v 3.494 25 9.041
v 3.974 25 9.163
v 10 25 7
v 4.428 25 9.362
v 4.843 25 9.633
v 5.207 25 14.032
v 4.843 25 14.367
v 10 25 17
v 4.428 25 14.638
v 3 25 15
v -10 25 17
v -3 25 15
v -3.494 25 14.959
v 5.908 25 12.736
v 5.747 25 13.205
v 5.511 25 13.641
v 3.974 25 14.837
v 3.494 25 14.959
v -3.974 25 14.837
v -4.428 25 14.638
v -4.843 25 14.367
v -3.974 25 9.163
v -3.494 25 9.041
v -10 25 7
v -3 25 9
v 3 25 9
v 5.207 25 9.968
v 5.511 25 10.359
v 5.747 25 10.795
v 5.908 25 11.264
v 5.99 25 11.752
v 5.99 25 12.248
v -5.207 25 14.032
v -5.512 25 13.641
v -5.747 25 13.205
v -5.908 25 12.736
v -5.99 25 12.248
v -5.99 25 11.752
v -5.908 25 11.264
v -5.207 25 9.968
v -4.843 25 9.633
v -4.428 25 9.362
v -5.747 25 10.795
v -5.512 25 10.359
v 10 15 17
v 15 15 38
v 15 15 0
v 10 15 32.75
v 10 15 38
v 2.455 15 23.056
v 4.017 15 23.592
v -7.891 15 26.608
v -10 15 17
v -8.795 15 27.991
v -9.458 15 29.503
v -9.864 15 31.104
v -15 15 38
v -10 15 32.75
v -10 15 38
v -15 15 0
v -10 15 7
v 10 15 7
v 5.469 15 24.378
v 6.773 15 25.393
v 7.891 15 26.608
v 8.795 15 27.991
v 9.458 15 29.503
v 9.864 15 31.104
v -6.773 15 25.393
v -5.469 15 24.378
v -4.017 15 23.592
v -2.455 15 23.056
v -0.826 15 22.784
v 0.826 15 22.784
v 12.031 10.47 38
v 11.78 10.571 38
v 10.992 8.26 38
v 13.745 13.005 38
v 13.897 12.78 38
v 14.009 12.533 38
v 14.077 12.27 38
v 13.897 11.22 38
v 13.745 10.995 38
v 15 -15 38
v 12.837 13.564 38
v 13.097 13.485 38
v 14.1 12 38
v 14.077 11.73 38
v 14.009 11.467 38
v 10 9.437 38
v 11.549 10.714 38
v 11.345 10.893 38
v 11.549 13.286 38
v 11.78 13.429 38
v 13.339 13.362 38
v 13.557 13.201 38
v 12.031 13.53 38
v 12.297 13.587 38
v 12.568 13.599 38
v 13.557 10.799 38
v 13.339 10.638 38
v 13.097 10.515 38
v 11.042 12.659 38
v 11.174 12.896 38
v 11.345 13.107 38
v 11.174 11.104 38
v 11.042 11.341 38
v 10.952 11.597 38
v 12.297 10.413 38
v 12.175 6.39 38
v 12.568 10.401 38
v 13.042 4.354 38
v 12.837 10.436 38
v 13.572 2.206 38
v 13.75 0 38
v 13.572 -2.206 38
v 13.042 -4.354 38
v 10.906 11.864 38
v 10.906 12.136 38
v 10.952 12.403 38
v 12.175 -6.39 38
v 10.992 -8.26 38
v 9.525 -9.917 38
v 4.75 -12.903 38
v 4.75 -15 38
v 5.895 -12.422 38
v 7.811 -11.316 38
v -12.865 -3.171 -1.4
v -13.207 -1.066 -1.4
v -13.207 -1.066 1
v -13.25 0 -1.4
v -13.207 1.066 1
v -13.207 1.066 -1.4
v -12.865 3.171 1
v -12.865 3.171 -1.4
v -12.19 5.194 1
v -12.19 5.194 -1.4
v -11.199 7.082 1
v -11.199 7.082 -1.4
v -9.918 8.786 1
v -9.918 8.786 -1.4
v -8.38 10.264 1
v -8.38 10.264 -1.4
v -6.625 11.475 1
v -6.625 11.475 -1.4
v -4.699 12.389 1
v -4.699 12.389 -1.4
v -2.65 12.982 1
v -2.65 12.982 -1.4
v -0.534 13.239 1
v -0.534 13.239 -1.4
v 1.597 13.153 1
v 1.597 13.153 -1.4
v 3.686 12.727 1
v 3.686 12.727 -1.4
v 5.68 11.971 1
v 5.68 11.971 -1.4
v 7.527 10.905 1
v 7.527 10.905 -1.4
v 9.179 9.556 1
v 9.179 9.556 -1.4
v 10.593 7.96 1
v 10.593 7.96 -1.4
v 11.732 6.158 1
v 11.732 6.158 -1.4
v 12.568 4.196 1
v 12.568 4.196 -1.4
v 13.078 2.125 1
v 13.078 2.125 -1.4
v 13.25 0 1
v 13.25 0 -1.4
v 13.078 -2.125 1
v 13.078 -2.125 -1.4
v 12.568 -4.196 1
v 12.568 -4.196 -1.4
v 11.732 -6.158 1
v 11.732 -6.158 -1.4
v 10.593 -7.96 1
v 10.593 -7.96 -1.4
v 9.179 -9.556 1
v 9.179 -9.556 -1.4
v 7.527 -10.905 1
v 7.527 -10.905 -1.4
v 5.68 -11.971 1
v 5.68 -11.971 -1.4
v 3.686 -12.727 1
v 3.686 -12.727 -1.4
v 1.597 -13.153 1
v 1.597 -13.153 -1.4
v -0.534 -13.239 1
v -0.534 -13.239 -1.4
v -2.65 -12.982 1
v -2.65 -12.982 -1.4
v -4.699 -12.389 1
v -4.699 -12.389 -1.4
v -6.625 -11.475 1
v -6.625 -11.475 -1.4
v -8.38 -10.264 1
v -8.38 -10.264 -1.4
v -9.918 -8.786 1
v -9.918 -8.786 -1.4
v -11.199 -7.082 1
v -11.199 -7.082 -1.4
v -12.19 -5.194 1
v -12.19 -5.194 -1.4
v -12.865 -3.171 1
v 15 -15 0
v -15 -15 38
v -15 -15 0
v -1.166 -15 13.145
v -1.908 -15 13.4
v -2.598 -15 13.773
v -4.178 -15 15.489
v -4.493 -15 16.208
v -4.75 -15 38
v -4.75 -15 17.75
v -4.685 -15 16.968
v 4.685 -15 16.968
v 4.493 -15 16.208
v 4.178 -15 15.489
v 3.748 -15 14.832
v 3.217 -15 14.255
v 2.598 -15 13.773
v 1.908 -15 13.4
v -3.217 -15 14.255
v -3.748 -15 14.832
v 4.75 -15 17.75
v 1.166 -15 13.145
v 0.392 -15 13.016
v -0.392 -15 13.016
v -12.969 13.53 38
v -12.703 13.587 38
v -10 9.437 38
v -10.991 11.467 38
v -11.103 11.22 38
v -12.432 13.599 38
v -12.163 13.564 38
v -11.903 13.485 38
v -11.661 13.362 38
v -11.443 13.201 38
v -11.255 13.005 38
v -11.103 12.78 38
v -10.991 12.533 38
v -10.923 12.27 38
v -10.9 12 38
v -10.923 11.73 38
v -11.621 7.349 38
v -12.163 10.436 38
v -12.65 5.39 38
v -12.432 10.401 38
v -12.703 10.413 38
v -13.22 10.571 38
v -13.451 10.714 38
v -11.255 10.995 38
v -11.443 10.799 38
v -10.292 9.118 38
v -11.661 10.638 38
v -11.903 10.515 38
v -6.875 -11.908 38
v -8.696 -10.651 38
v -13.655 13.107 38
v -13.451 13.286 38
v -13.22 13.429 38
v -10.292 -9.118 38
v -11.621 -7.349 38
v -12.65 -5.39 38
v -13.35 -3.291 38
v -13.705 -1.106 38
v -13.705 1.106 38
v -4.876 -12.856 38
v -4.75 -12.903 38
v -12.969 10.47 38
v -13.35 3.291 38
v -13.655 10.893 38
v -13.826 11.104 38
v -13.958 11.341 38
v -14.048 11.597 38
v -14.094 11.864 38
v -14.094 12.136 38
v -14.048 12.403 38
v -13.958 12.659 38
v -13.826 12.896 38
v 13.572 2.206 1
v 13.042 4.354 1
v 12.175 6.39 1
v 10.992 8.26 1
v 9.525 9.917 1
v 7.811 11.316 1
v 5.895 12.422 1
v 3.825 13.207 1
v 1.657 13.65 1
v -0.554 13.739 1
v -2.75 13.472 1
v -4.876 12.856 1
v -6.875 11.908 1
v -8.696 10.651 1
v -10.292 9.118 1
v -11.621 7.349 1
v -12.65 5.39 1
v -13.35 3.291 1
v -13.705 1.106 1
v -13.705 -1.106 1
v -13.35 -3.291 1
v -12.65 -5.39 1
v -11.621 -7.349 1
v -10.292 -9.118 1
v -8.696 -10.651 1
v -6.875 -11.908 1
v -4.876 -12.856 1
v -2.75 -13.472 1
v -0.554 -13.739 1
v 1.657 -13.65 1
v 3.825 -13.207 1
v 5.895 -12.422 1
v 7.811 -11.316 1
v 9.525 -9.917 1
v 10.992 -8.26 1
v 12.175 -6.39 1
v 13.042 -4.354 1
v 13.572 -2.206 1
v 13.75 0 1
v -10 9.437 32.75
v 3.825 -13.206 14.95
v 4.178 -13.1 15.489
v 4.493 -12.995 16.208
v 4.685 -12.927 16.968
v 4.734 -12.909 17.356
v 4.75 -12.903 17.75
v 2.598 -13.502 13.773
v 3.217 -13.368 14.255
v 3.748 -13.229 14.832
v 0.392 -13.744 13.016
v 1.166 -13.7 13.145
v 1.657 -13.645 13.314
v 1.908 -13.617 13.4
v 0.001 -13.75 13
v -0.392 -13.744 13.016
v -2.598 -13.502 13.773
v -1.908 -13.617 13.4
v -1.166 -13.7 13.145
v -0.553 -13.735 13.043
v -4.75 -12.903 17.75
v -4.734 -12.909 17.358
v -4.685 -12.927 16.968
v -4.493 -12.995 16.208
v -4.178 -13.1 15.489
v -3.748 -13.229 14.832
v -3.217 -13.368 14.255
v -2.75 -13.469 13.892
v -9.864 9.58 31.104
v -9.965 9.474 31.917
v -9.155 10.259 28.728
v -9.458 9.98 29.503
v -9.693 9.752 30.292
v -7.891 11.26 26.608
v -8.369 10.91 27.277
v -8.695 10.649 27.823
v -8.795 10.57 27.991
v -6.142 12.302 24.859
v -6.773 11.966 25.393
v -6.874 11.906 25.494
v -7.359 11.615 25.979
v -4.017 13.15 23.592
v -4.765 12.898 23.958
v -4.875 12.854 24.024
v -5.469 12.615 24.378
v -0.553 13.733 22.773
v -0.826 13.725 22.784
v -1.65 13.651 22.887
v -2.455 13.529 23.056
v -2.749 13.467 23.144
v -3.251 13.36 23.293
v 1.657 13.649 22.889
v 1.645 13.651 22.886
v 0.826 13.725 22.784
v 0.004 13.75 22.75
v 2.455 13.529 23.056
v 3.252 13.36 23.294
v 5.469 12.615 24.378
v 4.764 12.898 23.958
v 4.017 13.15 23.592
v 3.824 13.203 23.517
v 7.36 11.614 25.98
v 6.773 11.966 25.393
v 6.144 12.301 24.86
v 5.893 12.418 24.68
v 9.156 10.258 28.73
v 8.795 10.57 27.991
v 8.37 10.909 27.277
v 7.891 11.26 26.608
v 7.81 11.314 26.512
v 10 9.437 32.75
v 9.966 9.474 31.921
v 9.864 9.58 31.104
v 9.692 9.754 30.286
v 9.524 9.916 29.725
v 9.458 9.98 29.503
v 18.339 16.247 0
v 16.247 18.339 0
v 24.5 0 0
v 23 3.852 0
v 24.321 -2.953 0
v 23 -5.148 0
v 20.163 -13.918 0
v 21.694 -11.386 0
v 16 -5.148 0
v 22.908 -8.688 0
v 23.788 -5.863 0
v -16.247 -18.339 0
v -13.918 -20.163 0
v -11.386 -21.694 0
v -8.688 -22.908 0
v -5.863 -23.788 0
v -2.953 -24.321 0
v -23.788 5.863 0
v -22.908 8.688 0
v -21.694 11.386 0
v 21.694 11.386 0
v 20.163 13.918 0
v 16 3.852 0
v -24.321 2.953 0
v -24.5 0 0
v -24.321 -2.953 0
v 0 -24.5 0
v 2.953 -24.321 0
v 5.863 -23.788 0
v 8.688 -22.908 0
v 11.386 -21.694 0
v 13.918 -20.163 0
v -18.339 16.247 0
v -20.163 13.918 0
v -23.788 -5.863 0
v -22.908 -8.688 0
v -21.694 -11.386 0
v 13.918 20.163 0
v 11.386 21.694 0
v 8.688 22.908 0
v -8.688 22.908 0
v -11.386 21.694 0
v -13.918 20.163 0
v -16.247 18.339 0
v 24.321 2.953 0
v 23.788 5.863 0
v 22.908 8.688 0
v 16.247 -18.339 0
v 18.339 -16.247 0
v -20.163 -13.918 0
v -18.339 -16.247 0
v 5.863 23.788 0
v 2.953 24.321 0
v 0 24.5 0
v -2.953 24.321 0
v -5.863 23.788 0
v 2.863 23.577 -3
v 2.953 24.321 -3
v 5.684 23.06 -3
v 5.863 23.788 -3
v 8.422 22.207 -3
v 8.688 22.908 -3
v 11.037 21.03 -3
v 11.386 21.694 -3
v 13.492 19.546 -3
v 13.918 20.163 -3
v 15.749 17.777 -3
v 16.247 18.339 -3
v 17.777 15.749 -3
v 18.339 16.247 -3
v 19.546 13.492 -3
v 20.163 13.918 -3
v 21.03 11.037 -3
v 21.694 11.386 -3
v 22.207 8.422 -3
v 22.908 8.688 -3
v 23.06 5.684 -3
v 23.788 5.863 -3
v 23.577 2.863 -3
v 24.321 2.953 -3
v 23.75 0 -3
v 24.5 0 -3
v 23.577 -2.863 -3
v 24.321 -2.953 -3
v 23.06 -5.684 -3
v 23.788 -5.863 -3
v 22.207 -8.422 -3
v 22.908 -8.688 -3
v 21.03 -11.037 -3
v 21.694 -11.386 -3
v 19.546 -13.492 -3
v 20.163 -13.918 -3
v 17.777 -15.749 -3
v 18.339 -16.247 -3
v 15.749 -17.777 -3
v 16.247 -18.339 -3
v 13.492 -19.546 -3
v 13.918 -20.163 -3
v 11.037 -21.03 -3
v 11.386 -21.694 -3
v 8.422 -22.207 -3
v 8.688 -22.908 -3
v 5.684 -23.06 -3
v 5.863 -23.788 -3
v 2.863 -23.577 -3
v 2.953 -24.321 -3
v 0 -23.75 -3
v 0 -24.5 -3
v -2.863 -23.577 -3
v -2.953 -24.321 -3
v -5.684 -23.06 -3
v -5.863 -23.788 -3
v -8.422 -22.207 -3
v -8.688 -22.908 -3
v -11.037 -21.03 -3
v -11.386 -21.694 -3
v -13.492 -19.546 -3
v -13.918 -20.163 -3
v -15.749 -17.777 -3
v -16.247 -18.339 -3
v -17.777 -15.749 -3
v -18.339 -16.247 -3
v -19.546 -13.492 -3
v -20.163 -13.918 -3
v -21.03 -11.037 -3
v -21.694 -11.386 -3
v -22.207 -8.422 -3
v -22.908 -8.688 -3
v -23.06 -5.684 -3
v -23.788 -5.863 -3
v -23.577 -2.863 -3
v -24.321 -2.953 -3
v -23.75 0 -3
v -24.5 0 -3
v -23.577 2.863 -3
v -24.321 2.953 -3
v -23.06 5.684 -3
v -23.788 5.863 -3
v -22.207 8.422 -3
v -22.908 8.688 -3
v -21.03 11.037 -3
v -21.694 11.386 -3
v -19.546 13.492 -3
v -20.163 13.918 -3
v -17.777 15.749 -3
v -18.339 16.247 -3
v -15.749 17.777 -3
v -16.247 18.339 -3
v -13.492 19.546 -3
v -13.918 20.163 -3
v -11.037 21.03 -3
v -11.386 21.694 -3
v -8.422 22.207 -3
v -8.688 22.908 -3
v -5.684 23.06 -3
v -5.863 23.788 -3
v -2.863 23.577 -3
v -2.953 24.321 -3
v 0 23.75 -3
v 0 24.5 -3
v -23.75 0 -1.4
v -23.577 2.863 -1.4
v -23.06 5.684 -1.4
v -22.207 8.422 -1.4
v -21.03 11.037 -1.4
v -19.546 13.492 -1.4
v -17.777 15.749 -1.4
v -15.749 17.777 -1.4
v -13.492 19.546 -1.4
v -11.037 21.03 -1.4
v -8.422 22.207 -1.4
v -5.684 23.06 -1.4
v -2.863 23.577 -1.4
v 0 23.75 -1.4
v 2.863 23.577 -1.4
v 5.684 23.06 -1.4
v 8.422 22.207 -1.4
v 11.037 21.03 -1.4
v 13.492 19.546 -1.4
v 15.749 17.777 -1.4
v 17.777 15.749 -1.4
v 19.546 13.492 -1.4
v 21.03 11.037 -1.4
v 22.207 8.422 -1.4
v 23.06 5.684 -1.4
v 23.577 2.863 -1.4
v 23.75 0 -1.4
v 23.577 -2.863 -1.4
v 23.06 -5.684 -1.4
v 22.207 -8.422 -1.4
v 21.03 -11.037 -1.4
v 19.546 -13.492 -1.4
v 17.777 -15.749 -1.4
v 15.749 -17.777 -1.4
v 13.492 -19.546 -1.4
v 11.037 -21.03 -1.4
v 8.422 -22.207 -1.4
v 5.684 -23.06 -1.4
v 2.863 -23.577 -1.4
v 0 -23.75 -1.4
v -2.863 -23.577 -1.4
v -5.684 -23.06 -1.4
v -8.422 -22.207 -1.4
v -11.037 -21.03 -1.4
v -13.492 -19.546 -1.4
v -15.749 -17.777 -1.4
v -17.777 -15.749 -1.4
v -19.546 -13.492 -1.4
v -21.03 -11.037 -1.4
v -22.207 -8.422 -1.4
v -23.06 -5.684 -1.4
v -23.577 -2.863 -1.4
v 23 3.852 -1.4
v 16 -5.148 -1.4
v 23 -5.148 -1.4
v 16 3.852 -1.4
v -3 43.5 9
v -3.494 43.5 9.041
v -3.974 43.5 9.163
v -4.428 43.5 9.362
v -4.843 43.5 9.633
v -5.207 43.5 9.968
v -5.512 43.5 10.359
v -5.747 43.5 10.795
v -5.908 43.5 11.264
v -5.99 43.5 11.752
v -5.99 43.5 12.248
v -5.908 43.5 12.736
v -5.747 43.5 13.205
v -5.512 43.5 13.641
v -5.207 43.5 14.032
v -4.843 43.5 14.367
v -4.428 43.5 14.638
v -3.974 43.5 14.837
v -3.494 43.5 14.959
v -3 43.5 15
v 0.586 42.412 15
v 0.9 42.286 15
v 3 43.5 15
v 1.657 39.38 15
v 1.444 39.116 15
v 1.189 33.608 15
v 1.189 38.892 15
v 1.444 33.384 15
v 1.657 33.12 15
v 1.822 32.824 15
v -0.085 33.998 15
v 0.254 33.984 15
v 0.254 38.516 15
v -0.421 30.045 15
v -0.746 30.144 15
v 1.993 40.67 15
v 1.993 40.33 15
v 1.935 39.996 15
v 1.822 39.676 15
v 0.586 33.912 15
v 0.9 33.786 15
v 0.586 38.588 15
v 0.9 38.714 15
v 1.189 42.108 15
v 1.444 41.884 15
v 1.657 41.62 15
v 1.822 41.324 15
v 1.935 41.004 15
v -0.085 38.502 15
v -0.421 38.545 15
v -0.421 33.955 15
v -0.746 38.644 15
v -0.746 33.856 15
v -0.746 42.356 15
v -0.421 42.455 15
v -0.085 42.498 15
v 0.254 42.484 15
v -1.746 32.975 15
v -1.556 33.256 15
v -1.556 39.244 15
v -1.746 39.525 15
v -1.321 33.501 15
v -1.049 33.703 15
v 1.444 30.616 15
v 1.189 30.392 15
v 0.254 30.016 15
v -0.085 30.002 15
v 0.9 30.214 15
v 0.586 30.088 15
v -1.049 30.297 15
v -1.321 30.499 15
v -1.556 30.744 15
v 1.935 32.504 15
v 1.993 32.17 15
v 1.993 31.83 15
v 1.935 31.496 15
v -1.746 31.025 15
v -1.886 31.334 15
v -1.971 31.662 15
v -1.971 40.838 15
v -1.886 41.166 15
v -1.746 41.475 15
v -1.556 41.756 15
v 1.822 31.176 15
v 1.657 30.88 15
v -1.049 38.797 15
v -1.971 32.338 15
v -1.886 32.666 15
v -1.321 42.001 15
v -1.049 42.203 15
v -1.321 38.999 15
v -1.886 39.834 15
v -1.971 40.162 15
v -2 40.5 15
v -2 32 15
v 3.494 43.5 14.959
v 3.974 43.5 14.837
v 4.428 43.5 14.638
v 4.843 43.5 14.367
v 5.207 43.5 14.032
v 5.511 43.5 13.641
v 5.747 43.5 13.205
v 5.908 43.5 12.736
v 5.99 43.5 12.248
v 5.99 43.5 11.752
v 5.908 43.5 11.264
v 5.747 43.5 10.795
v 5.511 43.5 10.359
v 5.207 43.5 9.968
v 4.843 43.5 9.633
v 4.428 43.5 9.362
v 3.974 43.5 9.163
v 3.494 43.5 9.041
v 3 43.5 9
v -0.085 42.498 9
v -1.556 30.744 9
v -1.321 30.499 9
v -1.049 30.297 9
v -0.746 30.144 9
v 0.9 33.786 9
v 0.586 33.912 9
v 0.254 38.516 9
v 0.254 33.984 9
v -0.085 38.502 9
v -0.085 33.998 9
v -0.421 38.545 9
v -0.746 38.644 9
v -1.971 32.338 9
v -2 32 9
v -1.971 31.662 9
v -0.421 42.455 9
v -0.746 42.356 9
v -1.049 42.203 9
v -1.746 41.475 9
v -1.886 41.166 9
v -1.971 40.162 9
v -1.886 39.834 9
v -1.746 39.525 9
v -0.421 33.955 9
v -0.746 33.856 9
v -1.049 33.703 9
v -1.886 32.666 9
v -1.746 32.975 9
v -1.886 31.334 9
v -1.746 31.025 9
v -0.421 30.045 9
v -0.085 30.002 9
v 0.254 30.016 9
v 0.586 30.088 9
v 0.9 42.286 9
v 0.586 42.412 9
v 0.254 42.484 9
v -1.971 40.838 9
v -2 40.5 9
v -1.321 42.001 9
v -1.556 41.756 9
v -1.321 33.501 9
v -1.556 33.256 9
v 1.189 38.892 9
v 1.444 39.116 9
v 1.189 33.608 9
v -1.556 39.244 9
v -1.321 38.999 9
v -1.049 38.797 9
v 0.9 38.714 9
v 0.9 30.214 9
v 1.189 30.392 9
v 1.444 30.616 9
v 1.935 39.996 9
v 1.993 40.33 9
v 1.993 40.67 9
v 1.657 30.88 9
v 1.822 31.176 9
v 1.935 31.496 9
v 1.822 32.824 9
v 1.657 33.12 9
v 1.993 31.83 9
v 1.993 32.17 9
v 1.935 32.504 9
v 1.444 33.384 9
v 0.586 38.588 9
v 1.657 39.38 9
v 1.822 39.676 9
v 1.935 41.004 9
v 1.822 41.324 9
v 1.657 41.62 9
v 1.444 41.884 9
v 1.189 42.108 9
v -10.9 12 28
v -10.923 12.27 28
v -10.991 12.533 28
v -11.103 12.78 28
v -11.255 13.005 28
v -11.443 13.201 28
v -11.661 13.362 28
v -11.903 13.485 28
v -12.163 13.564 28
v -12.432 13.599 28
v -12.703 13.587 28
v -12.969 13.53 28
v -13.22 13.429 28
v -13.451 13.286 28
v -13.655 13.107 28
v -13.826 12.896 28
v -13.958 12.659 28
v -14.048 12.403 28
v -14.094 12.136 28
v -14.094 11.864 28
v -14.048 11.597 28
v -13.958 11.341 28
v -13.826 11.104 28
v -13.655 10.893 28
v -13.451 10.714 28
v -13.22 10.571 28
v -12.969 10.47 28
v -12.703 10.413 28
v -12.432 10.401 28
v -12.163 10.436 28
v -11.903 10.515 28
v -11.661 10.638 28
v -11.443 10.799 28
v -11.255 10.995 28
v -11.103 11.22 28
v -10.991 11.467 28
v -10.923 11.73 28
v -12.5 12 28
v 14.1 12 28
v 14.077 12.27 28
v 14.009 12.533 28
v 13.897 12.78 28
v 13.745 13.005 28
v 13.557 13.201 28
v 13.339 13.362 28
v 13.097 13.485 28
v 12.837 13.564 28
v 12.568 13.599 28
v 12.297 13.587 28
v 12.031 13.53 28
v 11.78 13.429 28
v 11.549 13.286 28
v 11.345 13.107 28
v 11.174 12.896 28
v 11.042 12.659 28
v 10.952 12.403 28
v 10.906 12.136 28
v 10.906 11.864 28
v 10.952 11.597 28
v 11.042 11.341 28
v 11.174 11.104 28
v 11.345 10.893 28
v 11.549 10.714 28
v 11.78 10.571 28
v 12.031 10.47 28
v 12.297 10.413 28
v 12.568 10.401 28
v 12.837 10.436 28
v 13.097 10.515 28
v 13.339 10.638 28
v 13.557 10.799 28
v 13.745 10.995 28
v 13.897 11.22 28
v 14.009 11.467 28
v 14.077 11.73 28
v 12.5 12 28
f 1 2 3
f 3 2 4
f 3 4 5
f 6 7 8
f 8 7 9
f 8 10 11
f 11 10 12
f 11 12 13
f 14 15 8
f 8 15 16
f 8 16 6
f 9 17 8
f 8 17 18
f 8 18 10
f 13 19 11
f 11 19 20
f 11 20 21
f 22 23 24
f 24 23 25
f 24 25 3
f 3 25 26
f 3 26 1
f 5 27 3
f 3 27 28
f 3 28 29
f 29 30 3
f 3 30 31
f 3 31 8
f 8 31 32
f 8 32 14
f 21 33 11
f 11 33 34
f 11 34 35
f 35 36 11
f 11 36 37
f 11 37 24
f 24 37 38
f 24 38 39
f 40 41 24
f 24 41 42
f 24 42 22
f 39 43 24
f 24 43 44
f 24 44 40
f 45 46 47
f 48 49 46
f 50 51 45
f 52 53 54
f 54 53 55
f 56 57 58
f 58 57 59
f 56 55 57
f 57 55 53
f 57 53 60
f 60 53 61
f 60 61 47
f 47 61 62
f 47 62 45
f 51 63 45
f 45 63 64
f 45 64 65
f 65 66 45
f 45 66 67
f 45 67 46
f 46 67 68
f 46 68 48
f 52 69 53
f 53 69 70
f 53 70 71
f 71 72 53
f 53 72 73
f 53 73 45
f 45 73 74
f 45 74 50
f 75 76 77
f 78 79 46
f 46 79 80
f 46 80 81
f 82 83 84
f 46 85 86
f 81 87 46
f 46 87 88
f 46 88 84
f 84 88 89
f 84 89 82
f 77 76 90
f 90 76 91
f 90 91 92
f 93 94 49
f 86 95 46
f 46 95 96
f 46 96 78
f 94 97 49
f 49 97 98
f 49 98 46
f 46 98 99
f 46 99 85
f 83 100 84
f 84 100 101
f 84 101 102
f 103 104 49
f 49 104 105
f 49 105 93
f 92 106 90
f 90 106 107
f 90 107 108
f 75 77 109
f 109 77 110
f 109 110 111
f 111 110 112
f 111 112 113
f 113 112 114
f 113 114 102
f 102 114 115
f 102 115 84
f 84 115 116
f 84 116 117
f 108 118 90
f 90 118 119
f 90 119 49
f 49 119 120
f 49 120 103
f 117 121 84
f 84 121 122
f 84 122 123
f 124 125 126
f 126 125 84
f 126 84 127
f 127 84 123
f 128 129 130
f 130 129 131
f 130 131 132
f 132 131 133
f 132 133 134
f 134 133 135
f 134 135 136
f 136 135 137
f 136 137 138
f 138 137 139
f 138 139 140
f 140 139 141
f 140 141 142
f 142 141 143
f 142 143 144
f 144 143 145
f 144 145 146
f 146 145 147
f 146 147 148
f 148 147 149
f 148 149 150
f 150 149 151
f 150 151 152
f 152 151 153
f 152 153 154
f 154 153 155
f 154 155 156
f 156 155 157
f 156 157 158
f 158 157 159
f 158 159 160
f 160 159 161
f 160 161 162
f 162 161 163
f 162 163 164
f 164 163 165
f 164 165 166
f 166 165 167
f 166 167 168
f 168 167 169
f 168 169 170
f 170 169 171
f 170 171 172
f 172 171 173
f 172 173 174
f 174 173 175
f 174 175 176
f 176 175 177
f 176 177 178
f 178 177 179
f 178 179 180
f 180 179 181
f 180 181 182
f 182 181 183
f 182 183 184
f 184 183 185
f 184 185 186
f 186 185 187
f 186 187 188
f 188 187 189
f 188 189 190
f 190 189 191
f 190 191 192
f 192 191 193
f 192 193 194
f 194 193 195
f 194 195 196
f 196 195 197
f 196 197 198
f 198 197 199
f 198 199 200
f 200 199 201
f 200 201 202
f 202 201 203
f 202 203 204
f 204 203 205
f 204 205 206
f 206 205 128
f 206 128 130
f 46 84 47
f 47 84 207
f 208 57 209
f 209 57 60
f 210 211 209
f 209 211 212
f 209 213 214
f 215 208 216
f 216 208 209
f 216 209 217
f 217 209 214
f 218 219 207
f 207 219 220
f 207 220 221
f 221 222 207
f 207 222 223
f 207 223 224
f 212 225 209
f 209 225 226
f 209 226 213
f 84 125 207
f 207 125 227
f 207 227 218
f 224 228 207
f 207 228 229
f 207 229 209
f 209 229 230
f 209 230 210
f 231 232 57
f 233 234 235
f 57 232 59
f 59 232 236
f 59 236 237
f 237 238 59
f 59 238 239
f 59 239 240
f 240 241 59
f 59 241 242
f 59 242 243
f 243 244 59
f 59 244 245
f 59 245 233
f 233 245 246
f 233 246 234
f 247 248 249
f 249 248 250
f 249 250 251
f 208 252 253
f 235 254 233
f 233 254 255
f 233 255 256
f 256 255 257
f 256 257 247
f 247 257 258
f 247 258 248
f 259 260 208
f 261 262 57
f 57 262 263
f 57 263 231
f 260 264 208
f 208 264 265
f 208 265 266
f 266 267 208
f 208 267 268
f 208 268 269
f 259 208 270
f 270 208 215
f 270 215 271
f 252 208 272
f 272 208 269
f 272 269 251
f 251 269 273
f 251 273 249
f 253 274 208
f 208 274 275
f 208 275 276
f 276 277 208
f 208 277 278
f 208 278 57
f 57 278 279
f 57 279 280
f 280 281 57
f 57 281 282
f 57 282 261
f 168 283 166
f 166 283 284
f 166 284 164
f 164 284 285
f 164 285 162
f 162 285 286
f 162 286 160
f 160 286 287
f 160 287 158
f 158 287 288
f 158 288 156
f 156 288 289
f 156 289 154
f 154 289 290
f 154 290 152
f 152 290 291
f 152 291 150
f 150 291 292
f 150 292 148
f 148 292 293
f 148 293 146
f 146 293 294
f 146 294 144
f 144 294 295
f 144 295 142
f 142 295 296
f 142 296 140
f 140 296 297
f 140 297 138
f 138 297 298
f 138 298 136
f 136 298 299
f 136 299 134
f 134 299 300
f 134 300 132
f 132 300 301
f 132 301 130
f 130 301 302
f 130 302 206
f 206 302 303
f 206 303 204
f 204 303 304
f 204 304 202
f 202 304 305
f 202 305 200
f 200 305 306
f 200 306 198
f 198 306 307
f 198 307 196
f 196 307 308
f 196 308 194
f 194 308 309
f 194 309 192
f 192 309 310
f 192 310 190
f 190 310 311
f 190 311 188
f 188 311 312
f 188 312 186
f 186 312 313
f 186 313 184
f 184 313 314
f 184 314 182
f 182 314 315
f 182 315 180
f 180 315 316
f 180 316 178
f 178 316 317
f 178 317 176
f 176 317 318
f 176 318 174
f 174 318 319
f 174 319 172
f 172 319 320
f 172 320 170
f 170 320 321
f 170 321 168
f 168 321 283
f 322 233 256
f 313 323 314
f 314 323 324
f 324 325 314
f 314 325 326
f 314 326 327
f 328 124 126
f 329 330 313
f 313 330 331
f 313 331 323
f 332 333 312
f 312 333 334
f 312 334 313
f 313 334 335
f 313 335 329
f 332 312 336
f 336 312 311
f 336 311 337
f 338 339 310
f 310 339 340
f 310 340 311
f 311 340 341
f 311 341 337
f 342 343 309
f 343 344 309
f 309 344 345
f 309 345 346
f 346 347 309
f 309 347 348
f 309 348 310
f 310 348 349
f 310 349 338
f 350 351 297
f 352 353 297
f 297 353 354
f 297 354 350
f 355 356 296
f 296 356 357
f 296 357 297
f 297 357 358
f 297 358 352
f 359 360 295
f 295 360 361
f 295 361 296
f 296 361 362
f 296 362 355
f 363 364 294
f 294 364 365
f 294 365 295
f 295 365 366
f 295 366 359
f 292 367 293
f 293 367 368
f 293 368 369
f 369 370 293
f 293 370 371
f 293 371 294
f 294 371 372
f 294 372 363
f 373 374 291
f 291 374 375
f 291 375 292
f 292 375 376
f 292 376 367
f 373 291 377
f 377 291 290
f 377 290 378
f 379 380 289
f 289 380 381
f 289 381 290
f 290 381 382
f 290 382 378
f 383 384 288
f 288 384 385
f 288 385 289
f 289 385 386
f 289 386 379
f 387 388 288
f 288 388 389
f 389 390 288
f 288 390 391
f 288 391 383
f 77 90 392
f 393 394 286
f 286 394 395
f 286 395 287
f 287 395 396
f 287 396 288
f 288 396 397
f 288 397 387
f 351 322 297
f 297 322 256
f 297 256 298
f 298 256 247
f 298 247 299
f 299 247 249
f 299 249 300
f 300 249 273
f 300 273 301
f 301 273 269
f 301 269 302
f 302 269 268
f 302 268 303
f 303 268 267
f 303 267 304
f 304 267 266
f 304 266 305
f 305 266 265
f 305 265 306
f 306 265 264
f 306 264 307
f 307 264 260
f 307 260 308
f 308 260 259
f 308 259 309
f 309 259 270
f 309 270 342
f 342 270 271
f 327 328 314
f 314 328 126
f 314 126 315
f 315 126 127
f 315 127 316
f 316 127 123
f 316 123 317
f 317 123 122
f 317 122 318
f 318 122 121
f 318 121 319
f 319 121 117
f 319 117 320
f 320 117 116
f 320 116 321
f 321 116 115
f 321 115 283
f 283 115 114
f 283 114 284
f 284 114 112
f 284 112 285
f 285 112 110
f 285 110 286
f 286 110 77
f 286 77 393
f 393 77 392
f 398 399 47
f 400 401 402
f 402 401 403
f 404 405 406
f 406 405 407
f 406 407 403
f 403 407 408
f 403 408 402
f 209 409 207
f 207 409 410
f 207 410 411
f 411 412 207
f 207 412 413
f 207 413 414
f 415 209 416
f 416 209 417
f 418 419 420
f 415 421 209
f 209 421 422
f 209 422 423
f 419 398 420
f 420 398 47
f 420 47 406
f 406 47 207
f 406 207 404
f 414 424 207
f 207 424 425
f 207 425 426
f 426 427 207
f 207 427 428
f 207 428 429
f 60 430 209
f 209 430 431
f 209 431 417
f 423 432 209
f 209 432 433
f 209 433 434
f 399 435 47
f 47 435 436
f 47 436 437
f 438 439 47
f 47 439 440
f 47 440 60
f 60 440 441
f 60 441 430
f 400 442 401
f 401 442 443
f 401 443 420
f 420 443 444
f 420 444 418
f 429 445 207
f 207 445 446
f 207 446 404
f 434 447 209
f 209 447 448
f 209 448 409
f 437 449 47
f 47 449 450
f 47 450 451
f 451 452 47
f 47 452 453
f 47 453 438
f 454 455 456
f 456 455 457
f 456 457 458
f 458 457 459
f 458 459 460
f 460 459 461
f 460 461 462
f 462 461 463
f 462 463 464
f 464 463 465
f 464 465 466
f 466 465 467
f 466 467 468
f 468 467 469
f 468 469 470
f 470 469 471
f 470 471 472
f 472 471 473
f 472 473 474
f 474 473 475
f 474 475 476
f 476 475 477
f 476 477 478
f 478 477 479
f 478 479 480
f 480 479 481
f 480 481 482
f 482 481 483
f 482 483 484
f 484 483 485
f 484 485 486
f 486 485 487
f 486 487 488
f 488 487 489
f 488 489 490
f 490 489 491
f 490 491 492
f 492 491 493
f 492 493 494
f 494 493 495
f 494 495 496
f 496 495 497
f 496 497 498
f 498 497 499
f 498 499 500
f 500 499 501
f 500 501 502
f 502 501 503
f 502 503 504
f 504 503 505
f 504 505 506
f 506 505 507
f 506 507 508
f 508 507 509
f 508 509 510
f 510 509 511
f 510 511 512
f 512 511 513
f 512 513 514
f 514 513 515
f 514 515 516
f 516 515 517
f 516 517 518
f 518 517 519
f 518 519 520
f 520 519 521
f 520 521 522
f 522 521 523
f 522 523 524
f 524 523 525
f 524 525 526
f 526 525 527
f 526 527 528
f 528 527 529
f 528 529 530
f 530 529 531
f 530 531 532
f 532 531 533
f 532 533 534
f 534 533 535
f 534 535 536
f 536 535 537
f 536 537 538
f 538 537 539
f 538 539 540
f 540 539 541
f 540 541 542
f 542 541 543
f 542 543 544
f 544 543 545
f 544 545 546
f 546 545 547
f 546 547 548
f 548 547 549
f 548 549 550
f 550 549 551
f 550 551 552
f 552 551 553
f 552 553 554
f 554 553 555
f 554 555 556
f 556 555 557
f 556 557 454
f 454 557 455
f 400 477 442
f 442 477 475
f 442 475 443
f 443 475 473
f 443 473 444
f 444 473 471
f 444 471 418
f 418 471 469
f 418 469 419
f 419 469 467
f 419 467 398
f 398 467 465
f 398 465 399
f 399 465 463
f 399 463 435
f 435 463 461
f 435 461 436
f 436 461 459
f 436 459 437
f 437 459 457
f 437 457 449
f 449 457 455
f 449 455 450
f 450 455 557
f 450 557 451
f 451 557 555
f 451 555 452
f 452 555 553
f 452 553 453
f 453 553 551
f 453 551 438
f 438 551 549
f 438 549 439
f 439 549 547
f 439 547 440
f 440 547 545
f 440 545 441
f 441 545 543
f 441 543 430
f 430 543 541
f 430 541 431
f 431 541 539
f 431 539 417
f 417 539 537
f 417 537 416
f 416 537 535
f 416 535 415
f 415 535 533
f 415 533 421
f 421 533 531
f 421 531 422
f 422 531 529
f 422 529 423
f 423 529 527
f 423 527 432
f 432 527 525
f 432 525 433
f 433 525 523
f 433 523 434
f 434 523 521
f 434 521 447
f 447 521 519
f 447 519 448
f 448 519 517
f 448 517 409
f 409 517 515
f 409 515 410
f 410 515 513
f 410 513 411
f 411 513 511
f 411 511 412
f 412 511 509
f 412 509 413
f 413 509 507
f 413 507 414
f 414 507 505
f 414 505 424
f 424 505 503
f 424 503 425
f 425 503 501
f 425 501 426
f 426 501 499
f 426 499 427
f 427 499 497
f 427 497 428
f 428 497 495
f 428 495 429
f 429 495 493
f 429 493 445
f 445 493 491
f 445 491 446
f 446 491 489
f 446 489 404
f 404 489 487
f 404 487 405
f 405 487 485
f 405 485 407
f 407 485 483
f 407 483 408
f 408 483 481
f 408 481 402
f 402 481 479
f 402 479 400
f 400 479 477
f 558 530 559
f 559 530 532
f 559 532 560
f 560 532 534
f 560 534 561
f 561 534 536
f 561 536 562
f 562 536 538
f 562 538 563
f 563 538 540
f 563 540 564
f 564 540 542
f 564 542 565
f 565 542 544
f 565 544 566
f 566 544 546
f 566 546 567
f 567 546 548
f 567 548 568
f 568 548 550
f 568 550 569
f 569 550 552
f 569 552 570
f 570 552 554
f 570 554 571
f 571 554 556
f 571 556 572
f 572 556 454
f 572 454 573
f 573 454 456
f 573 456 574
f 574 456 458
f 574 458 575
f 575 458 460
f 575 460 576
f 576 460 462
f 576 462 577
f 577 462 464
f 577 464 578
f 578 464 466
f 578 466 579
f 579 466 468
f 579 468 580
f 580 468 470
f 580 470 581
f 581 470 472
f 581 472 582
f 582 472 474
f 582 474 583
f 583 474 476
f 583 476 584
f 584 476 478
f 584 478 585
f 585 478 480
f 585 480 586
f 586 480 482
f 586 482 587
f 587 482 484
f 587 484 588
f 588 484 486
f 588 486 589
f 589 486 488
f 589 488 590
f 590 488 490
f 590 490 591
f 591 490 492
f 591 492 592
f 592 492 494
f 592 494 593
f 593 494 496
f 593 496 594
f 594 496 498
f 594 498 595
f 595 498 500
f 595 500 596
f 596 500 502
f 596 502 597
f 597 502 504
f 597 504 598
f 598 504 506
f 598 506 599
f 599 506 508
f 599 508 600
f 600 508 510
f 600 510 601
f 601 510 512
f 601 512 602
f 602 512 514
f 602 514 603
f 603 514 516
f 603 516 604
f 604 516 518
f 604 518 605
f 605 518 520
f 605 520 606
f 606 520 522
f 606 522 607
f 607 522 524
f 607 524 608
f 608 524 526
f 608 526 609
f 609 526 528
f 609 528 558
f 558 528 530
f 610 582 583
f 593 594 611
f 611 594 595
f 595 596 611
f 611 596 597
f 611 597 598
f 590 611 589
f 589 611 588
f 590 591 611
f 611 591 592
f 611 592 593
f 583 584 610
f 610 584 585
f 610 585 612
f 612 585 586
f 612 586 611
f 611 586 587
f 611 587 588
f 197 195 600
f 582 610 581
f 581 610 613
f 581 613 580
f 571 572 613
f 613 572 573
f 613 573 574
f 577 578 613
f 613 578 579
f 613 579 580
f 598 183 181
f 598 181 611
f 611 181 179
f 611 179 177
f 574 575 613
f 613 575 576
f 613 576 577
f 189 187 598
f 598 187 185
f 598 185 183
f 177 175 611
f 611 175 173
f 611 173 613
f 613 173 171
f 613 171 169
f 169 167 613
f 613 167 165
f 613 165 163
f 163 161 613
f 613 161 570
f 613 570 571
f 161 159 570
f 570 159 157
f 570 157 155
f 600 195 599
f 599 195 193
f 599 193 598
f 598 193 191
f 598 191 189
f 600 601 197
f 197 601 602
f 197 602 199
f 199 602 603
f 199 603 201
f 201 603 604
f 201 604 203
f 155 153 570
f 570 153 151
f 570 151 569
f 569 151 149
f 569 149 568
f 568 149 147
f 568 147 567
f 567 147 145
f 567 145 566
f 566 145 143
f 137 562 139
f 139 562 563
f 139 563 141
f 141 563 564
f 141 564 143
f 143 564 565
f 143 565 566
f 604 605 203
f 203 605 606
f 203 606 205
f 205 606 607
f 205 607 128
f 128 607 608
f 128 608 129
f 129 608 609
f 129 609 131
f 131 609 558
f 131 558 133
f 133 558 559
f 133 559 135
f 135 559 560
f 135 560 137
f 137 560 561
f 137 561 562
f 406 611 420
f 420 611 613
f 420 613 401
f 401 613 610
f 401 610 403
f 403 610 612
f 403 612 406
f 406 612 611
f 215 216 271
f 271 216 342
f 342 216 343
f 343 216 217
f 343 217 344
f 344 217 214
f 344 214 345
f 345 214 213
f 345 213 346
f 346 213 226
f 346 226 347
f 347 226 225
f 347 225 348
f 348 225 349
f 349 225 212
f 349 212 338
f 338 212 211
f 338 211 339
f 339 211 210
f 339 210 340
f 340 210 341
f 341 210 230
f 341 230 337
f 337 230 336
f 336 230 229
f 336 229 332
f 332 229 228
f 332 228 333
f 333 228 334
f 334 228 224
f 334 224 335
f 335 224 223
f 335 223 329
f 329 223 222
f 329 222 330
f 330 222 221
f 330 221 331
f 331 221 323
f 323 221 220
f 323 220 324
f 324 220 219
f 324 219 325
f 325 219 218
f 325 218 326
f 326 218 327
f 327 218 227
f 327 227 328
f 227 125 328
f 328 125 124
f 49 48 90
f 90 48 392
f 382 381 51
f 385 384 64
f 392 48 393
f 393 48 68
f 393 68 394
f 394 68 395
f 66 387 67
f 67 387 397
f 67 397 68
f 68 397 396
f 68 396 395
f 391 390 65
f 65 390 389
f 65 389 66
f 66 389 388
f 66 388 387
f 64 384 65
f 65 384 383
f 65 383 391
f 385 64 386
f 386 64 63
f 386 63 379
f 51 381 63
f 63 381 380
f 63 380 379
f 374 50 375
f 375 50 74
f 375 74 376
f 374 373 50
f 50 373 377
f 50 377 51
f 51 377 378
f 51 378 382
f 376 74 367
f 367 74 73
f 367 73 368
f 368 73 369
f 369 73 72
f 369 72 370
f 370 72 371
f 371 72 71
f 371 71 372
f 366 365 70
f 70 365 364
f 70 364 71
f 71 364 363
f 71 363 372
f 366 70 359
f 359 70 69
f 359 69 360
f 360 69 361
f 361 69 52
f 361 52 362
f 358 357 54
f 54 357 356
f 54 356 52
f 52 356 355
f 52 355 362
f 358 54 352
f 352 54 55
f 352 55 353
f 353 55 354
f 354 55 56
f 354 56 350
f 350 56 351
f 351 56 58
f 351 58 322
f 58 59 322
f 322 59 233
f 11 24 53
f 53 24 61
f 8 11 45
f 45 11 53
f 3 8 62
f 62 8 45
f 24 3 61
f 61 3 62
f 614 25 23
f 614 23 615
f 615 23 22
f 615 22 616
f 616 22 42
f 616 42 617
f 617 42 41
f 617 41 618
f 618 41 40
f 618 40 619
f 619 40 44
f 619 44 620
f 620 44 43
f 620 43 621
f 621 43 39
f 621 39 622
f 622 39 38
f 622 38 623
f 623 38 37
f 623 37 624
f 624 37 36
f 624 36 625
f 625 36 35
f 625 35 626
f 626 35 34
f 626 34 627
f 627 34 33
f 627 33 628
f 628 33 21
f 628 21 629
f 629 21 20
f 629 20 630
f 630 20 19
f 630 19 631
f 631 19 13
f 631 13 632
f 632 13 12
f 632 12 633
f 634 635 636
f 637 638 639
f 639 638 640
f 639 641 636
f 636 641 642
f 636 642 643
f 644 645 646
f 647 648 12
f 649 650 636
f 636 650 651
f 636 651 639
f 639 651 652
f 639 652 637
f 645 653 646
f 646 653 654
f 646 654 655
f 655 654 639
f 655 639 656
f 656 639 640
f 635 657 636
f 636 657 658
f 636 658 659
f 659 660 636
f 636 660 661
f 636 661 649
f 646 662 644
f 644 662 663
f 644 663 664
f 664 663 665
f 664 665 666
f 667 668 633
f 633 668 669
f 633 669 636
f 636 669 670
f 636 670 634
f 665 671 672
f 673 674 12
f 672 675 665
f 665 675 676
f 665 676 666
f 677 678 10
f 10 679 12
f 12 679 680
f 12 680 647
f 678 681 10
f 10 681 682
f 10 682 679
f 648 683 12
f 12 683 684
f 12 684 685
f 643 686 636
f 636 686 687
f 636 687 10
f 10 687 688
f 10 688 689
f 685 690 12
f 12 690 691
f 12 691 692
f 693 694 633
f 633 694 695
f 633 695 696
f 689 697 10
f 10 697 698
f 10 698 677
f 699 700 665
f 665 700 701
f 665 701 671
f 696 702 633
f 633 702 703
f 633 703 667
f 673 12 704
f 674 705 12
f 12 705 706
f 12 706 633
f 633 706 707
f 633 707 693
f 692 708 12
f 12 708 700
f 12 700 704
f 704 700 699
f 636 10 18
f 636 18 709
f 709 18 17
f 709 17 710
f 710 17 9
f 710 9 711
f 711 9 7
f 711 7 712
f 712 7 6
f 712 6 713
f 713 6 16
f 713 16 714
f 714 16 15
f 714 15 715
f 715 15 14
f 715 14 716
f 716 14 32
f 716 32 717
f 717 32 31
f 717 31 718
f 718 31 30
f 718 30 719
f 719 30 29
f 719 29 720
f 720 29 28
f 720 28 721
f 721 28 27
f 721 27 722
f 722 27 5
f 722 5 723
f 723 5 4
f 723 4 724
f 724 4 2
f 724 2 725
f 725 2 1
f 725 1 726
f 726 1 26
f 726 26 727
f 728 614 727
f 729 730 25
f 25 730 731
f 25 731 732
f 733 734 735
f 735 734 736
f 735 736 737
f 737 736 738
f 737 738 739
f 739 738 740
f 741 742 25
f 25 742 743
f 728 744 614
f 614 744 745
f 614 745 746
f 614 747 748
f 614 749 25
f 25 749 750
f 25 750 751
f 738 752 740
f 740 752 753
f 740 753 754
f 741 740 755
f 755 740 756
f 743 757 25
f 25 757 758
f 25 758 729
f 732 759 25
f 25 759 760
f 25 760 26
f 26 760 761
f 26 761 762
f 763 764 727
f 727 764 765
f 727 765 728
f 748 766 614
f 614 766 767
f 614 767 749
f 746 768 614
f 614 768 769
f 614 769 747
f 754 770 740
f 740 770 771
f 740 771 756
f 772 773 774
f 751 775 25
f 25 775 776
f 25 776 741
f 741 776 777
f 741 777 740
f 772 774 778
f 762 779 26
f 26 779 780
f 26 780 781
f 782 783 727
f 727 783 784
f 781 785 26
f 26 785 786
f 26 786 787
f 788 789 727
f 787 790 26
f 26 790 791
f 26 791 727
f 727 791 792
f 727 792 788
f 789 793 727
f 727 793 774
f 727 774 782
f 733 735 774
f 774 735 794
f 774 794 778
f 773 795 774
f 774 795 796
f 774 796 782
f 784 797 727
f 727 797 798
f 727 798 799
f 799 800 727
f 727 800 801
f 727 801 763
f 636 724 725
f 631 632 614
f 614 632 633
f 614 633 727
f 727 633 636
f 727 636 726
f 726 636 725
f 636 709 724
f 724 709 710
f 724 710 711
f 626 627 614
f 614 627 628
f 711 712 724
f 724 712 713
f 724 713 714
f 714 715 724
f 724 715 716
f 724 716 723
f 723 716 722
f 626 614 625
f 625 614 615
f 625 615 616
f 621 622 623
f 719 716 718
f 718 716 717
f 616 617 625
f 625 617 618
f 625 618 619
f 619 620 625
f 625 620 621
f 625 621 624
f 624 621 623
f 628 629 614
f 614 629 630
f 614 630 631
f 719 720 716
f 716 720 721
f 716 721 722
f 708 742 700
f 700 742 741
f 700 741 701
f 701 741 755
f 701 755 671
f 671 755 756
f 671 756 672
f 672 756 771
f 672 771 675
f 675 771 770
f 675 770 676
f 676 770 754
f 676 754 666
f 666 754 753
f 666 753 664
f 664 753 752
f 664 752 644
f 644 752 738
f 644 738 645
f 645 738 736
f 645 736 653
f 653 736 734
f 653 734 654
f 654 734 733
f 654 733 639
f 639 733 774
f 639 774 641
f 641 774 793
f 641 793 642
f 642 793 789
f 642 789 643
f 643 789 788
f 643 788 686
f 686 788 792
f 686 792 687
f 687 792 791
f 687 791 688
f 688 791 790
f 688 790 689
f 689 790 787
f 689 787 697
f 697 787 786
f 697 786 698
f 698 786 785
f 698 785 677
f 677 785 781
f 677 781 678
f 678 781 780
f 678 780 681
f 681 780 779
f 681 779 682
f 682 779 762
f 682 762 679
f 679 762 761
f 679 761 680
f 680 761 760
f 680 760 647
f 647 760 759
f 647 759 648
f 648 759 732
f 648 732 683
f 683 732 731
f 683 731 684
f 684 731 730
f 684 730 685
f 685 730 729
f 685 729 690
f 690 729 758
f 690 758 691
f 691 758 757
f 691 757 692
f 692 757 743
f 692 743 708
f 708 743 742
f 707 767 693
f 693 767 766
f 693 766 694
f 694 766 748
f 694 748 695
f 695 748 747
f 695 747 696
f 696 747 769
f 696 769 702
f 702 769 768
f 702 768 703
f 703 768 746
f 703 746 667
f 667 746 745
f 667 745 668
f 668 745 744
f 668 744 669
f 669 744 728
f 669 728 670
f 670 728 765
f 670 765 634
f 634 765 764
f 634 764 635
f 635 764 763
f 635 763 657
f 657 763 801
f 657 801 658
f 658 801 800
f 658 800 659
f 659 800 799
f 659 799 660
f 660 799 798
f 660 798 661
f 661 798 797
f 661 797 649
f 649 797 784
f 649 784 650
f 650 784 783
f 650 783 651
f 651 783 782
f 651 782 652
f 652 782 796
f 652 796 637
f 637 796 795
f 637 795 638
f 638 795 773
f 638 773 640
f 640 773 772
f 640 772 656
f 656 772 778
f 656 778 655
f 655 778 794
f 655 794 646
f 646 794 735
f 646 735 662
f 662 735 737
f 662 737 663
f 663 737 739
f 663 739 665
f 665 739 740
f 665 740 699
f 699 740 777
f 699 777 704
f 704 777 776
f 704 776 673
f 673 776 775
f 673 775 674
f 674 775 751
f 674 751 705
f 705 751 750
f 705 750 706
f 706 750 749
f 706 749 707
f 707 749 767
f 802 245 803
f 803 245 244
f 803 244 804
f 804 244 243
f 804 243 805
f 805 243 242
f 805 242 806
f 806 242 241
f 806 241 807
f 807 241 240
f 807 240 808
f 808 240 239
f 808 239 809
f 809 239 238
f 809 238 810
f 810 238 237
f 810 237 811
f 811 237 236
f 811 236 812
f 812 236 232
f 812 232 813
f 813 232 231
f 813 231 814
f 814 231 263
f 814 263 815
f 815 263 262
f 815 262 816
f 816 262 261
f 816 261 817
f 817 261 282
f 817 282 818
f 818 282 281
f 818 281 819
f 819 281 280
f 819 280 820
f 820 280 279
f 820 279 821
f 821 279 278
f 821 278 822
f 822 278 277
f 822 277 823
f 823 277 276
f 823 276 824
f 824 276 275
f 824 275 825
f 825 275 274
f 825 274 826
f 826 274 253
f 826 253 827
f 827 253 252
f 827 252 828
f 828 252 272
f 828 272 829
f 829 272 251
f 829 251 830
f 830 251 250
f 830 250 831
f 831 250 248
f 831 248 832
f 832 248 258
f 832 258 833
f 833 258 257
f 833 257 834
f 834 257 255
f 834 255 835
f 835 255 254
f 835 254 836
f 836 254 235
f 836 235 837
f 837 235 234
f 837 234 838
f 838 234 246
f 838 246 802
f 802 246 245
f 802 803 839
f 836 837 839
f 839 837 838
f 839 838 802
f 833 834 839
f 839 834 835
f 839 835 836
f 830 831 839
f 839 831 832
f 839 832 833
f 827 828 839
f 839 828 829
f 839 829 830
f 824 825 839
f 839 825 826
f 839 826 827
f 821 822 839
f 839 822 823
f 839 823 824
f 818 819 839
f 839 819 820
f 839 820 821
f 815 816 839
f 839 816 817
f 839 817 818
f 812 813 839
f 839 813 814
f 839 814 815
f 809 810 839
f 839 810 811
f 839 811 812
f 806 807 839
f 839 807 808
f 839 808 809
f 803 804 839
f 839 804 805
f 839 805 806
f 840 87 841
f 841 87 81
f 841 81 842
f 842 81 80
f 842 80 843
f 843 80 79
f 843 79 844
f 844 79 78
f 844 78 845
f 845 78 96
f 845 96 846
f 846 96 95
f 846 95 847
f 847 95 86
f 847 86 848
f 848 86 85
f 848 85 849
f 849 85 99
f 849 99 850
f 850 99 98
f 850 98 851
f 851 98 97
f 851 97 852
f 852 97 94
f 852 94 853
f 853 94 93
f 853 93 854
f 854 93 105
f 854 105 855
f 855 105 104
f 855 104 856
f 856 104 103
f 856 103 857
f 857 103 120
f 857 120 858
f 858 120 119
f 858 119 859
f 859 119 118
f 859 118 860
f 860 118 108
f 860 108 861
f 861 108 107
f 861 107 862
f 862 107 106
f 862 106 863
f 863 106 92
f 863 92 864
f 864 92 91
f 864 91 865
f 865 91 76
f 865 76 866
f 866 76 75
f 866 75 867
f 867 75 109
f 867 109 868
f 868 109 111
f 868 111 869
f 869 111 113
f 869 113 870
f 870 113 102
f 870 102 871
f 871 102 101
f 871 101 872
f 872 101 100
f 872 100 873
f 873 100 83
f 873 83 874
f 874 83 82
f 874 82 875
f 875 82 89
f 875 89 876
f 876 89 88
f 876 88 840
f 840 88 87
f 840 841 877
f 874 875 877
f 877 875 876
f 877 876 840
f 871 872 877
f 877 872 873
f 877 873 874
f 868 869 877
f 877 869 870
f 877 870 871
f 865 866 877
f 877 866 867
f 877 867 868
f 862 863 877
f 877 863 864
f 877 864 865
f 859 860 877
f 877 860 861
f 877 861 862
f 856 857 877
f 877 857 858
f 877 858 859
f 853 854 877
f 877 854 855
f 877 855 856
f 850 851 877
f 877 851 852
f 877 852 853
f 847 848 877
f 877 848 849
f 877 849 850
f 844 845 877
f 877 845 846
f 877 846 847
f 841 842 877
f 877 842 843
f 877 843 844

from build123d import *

# Parameters (mm, degrees)
SKETCH1_W                = 30
SKETCH1_H                = 30
BOSS_EXTRUDE1_DEPTH      = 38
CUT_EXTRUDE3_REACH       = 45.52
SKETCH2_R                = 13.25
SKETCH4_R                = 13.75
CUT_EXTRUDE4_DEPTH       = 37
SKETCH5_R                = 24.5
BOSS_EXTRUDE4_DEPTH      = 3
SKETCH8_R                = 23.75
CUT_EXTRUDE8_DEPTH       = 1.6
SKETCH9_R                = 13.25
CUT_EXTRUDE9_DEPTH       = 1.6
CUT_EXTRUDE10_REACH      = 53.425
SKETCH10_W               = 7
SKETCH10_H               = 9
CUT_EXTRUDE11_REACH      = 62.037
CUT_EXTRUDE11_END_RADIUS = 13.75
CUT_EXTRUDE12_REACH      = 62.037
CUT_EXTRUDE12_END_RADIUS = 13.75
SKETCH14_W               = 20
SKETCH14_H               = 10
BOSS_EXTRUDE5_DEPTH      = 10
BOSS_EXTRUDE6_DEPTH      = 18.5
CUT_EXTRUDE13_REACH      = 59.736
SKETCH16_R               = 2
SKETCH17_R               = 1.6
CUT_EXTRUDE14_DEPTH      = 10


with BuildPart() as part:
    # Sketch1 → Boss-Extrude1 (new body)
    with BuildSketch(Plane.XY):
        Rectangle(SKETCH1_W, SKETCH1_H)
    extrude(amount=BOSS_EXTRUDE1_DEPTH)

    # Sketch2 → Cut-Extrude3 (cut, up to next)
    with BuildSketch(Plane.XY.offset(38), mode=Mode.PRIVATE) as cut_extrude3_sk1:
        Circle(SKETCH2_R)
    cut_extrude3_tool1 = extrude(cut_extrude3_sk1.sketch, amount=-CUT_EXTRUDE3_REACH, mode=Mode.PRIVATE) & part.part
    add(cut_extrude3_tool1.solids().sort_by_distance((0, 0, 38))[0], mode=Mode.SUBTRACT)

    # Sketch4 → Cut-Extrude4 (cut)
    with BuildSketch(Plane.XY.offset(38)):
        Circle(SKETCH4_R)
    extrude(amount=-CUT_EXTRUDE4_DEPTH, mode=Mode.SUBTRACT)

    # Sketch5 → Boss-Extrude4 (add)
    with BuildSketch(Plane(origin=(0, 0, 0), x_dir=(-1, 0, 0), z_dir=(0, 0, -1))):
        Circle(SKETCH5_R)
    extrude(amount=BOSS_EXTRUDE4_DEPTH)

    # Sketch8 → Cut-Extrude8 (cut)
    with BuildSketch(Plane(origin=(0, 0, -3), x_dir=(-1, 0, 0), z_dir=(0, 0, -1))):
        Circle(SKETCH8_R)
    extrude(amount=-CUT_EXTRUDE8_DEPTH, mode=Mode.SUBTRACT)

    # Sketch9 → Cut-Extrude9 (cut)
    with BuildSketch(Plane.XY):
        Circle(SKETCH9_R)
    extrude(amount=-CUT_EXTRUDE9_DEPTH, mode=Mode.SUBTRACT)

    # Sketch10 → Cut-Extrude10 (cut, up to next)
    with BuildSketch(Plane.XY, mode=Mode.PRIVATE) as cut_extrude10_sk1:
        with Locations((19.5, -0.647719384)):
            Rectangle(SKETCH10_W, SKETCH10_H)
    cut_extrude10_tool1 = extrude(cut_extrude10_sk1.sketch, amount=-CUT_EXTRUDE10_REACH, mode=Mode.PRIVATE) & part.part
    add(cut_extrude10_tool1.solids().sort_by_distance((19.5, -0.647719, 0))[0], mode=Mode.SUBTRACT)

    # Cut-Extrude11: up to this cylinder (the profile starts outside it)
    cut_extrude11_end = Plane(origin=(0, 0, 27.875), z_dir=(0, 0, 1)) * Cylinder(CUT_EXTRUDE11_END_RADIUS, 152.574, mode=Mode.PRIVATE)
    # Sketch12 → Cut-Extrude11 (cut, up to the surface)
    with BuildSketch(Plane(origin=(0, -15, 0), x_dir=(-1, 0, 0), z_dir=(0, -1, 0)), mode=Mode.PRIVATE) as cut_extrude11_sk1:
        with BuildLine():
            Line((-4.75, -38), (-4.75, -17.75))
            ThreePointArc((-4.75, -17.75), (0, -13), (4.75, -17.75))
            Line((4.75, -17.75), (4.75, -38))
            ThreePointArc((4.75, -38), (0, -42.75), (-4.75, -38))
        make_face()
    cut_extrude11_tool1 = extrude(cut_extrude11_sk1.sketch, amount=-CUT_EXTRUDE11_REACH, mode=Mode.PRIVATE) - cut_extrude11_end
    add(cut_extrude11_tool1.solids().sort_by_distance((0, -15, 27.875))[0], mode=Mode.SUBTRACT)

    # Cut-Extrude12: up to this cylinder (the profile starts outside it)
    cut_extrude12_end = Plane(origin=(0, 0, 35.375), z_dir=(0, 0, 1)) * Cylinder(CUT_EXTRUDE12_END_RADIUS, 152.574, mode=Mode.PRIVATE)
    # Sketch13 → Cut-Extrude12 (cut, up to the surface)
    with BuildSketch(Plane(origin=(0, 15, 0), x_dir=(1, 0, 0), z_dir=(0, 1, 0)), mode=Mode.PRIVATE) as cut_extrude12_sk1:
        with BuildLine():
            Line((-10, -38), (-10, -32.75))
            ThreePointArc((-10, -32.75), (0, -22.75), (10, -32.75))
            Line((10, -32.75), (10, -38))
            ThreePointArc((10, -38), (0, -48), (-10, -38))
        make_face()
    cut_extrude12_tool1 = extrude(cut_extrude12_sk1.sketch, amount=-CUT_EXTRUDE12_REACH, mode=Mode.PRIVATE) - cut_extrude12_end
    add(cut_extrude12_tool1.solids().sort_by_distance((0, 15, 35.375))[0], mode=Mode.SUBTRACT)

    # Sketch14 → Boss-Extrude5 (add)
    with BuildSketch(Plane(origin=(0, 15, 0), x_dir=(1, 0, 0), z_dir=(0, 1, 0))):
        with Locations((0, -12)):
            Rectangle(SKETCH14_W, SKETCH14_H)
    extrude(amount=BOSS_EXTRUDE5_DEPTH)

    # Sketch15 → Boss-Extrude6 (add)
    with BuildSketch(Plane(origin=(0, 25, 0), x_dir=(1, 0, 0), z_dir=(0, 1, 0))):
        with BuildLine():
            Line((-3, -9), (3, -9))
            ThreePointArc((3, -9), (6, -12), (3, -15))
            Line((3, -15), (-3, -15))
            ThreePointArc((-3, -15), (-6, -12), (-3, -9))
        make_face()
    extrude(amount=BOSS_EXTRUDE6_DEPTH)

    # Sketch16 → Cut-Extrude13 (cut, up to next)
    with BuildSketch(Plane(origin=(0, 0, 9), x_dir=(-1, 0, 0), z_dir=(0, 0, -1)), mode=Mode.PRIVATE) as cut_extrude13_sk1:
        with Locations((0, 40.5)):
            Circle(SKETCH16_R)
    cut_extrude13_tool1 = extrude(cut_extrude13_sk1.sketch, amount=-CUT_EXTRUDE13_REACH, mode=Mode.PRIVATE) & part.part
    # Sketch16 → Cut-Extrude13 (cut, up to next)
    with BuildSketch(Plane(origin=(0, 0, 9), x_dir=(-1, 0, 0), z_dir=(0, 0, -1)), mode=Mode.PRIVATE) as cut_extrude13_sk2:
        with Locations((0, 32)):
            Circle(SKETCH16_R)
    cut_extrude13_tool2 = extrude(cut_extrude13_sk2.sketch, amount=-CUT_EXTRUDE13_REACH, mode=Mode.PRIVATE) & part.part
    add(cut_extrude13_tool1.solids().sort_by_distance((0, 40.5, 9))[0], mode=Mode.SUBTRACT)
    add(cut_extrude13_tool2.solids().sort_by_distance((0, 32, 9))[0], mode=Mode.SUBTRACT)

    # Sketch17 → Cut-Extrude14 (cut)
    with BuildSketch(Plane.XY.offset(38)):
        with Locations((12.5, 12)):
            Circle(SKETCH17_R)
        with Locations((-12.5, 12)):
            Circle(SKETCH17_R)
    extrude(amount=-CUT_EXTRUDE14_DEPTH, mode=Mode.SUBTRACT)


solid = part.part
